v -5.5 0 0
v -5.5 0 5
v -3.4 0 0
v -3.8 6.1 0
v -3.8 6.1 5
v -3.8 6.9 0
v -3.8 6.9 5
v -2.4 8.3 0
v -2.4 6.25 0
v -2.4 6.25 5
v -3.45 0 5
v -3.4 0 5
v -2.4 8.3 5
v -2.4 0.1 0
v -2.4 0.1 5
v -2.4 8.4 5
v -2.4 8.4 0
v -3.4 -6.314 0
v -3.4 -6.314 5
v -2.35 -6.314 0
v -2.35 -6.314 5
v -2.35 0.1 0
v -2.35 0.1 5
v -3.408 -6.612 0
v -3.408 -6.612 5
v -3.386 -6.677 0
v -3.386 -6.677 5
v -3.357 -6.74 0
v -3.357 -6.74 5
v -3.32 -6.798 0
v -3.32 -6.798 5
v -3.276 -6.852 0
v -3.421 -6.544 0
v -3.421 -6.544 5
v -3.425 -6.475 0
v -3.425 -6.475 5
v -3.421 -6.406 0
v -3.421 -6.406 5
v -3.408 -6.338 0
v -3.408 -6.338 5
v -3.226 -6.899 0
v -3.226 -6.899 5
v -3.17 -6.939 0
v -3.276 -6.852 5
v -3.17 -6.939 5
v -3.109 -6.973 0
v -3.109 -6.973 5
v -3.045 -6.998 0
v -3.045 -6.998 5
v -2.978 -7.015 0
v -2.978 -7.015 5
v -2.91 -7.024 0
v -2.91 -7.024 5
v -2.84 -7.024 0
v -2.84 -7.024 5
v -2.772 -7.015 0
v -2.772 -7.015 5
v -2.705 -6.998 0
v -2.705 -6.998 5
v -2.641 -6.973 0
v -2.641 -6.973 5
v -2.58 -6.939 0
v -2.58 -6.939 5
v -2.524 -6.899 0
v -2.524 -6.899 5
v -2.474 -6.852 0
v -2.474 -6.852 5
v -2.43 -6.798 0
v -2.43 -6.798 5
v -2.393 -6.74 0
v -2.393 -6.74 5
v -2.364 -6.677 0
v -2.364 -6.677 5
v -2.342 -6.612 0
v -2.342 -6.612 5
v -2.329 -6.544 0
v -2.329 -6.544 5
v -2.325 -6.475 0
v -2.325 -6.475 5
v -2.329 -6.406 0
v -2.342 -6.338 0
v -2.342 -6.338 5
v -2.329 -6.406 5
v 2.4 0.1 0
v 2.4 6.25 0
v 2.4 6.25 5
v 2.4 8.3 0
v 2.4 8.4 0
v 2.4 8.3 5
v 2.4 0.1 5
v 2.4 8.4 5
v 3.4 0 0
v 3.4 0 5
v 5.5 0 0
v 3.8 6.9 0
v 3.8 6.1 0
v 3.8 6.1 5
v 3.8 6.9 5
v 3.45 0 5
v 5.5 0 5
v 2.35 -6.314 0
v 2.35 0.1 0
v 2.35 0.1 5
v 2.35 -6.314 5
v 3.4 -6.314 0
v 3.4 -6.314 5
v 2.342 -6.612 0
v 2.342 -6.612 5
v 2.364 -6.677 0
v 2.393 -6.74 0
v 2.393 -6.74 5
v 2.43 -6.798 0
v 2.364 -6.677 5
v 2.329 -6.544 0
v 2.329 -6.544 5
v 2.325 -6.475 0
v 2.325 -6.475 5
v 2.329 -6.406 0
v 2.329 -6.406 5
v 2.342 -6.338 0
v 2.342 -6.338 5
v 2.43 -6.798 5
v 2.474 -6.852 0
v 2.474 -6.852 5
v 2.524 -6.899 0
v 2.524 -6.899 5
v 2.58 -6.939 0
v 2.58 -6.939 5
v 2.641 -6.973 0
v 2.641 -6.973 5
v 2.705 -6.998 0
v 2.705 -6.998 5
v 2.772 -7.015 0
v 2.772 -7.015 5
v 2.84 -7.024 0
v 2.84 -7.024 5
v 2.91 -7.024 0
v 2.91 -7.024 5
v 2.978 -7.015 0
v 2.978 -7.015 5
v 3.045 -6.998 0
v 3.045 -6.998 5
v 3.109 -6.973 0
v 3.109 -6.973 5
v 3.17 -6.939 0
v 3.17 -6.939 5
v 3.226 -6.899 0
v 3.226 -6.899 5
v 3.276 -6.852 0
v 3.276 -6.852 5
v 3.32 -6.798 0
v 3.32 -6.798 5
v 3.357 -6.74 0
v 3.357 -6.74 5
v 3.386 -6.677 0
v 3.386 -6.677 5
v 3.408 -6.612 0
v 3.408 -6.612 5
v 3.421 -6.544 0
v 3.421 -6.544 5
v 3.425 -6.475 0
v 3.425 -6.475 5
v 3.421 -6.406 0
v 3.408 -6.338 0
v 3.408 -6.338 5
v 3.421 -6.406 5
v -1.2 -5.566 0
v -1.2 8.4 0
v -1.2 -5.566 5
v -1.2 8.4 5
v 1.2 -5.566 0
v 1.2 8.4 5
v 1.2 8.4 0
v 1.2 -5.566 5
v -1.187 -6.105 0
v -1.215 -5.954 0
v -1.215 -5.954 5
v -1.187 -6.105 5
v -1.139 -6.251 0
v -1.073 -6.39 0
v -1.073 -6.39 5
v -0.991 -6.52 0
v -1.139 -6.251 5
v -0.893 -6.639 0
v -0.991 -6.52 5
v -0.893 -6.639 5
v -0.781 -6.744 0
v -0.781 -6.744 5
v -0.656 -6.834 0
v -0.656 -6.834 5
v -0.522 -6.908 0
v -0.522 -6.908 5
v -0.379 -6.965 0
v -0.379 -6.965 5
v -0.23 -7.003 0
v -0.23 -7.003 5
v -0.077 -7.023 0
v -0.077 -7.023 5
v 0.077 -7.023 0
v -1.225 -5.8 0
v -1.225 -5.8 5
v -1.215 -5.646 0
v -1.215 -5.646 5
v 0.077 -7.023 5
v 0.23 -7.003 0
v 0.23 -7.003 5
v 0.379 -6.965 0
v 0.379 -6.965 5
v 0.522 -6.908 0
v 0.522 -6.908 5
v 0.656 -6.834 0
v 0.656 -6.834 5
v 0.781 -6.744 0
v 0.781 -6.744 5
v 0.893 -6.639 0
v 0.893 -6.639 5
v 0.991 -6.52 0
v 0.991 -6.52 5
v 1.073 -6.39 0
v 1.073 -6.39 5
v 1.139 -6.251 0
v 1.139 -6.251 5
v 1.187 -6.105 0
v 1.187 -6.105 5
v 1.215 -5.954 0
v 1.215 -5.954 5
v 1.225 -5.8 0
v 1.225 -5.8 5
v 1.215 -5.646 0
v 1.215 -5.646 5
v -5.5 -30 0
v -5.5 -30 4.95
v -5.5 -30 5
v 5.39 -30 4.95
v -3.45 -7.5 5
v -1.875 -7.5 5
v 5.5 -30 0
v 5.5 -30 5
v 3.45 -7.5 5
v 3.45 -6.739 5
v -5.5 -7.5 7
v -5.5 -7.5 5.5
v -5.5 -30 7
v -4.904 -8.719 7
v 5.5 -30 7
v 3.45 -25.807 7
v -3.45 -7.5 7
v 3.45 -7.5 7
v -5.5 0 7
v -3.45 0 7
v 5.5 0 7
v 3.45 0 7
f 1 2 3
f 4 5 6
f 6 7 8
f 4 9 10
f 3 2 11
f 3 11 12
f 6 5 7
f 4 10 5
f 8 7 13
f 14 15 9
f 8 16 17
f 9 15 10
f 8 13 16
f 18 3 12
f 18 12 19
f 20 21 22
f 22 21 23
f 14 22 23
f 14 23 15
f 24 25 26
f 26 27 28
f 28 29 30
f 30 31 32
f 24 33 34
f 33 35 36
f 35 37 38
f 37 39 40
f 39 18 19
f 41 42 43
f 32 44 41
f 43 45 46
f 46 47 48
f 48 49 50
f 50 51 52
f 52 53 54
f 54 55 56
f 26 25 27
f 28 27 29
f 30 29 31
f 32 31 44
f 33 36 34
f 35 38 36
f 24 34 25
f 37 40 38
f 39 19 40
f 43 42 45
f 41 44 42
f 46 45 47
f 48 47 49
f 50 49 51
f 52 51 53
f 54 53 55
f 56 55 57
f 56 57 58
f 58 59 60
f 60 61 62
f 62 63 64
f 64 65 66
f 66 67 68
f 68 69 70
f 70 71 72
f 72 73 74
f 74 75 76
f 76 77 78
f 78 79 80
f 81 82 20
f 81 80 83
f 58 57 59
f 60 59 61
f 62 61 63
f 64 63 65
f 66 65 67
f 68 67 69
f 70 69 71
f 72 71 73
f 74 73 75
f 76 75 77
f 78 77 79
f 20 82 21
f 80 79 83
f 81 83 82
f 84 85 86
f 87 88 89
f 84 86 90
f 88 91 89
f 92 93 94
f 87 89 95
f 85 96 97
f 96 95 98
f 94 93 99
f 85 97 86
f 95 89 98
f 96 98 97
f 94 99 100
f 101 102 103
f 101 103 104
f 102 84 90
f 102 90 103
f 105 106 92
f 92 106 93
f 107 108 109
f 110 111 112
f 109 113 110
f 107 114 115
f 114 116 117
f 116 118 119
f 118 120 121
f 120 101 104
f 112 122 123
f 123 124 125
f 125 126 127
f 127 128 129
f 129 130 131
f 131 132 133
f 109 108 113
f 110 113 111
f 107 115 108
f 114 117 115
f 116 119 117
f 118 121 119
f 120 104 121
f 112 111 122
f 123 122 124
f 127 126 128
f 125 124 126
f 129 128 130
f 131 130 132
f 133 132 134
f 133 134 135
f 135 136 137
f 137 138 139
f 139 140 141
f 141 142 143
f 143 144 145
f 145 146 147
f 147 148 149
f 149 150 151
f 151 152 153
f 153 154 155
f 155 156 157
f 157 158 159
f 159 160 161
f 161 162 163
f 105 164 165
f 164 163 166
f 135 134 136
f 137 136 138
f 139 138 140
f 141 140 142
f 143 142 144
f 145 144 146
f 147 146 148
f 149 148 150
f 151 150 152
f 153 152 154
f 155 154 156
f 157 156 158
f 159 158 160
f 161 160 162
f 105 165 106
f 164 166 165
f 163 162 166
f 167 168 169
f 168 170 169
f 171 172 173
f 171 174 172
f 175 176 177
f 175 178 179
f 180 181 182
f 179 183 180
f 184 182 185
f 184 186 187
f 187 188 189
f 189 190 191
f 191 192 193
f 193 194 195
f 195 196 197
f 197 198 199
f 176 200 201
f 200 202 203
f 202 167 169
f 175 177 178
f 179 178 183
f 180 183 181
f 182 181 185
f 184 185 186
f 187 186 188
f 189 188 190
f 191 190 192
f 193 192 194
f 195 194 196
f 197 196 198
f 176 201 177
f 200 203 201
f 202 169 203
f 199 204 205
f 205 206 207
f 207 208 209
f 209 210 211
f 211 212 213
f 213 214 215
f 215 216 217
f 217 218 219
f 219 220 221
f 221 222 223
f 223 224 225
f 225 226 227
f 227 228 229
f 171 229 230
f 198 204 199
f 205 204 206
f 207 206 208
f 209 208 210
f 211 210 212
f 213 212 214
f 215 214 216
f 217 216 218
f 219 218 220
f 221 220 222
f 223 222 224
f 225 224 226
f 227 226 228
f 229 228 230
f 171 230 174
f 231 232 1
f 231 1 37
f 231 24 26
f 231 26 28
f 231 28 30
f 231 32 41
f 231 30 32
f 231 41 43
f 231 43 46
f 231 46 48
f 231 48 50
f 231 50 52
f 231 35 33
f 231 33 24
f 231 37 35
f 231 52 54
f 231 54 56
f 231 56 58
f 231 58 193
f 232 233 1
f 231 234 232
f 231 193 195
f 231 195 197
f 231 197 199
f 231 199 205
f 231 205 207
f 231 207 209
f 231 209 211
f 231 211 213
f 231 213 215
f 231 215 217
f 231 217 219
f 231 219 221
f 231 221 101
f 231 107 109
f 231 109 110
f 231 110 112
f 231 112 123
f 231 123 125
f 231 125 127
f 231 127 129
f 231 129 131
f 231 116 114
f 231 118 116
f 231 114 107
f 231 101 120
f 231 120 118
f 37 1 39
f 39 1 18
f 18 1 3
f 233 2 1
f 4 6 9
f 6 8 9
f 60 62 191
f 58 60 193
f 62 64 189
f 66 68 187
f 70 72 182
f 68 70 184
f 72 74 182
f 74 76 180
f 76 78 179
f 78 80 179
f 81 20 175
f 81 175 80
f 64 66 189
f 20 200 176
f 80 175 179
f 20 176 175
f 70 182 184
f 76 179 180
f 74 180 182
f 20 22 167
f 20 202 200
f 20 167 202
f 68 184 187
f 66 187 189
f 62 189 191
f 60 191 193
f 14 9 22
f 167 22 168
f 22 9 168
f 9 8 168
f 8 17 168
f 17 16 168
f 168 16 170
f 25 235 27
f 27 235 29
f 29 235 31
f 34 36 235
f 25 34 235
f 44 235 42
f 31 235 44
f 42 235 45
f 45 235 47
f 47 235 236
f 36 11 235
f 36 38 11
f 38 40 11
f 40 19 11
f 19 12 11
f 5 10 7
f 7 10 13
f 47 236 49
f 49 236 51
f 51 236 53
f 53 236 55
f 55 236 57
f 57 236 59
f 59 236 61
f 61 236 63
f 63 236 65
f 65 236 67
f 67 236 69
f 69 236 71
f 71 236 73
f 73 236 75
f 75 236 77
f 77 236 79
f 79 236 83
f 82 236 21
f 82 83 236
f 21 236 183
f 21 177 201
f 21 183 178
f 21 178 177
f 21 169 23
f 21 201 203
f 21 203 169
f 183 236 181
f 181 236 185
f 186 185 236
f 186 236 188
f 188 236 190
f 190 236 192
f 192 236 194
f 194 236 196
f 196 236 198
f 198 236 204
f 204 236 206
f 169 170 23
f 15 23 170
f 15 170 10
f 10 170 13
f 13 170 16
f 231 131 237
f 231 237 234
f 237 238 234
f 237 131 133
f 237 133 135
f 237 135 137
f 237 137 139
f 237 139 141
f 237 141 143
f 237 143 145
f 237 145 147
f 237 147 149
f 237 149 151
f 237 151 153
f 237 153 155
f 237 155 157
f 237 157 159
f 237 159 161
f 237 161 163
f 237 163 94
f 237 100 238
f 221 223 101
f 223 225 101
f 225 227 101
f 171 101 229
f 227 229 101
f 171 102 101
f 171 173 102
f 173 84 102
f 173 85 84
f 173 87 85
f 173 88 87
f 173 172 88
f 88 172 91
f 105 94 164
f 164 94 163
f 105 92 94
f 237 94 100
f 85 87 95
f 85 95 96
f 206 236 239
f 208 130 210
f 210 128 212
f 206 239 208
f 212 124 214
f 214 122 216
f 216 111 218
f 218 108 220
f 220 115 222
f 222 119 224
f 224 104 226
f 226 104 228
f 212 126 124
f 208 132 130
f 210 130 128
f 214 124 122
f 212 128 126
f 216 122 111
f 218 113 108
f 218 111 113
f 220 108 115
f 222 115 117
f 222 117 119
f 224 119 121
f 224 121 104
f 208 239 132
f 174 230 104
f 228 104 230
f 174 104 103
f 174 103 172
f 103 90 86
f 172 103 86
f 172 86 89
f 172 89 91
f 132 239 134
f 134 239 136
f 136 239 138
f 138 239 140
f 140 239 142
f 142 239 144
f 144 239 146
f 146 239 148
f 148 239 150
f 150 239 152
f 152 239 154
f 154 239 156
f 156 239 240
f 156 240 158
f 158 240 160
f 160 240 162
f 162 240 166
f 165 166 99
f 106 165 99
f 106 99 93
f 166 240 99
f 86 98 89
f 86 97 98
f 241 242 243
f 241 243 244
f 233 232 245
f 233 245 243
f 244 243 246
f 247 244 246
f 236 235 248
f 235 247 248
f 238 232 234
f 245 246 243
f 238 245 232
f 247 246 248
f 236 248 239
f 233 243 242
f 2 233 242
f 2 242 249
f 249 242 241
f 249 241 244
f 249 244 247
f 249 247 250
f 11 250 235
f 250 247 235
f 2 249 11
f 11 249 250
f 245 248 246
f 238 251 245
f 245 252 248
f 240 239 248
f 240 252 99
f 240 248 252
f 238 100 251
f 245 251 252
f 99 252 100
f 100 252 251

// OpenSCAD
$fn = 50;

difference() {
	union() {
		translate(v = [0, 0, 0]) {
			rotate(a = [0, 0, 0]) {
				difference() {
					union() {
						translate(v = [0, 0, 0]) {
							rotate(a = [0, 0, 0]) {
								difference() {
									union() {
										translate(v = [0, 0, 0]) {
											rotate(a = [0, 0, 0]) {
												difference() {
													union() {
														translate(v = [-5.5, -30.0, 0]) {
															cube(size = [11.0, 38.4, 5.0]);
														}
													}
													union() {
														translate(v = [0, 0, -0.1]) {
															linear_extrude(height = 5.2) {
																polygon(points = [[-2.4, 0], [-2.4, 6.25], [-3.8, 6.1], [-3.8, 6.8999999999999995], [-2.4, 8.299999999999999], [-2.4, 9.399999999999999], [-5.7, 9.399999999999999], [-5.7, 0]]);
															}
														}
														translate(v = [0, 0, -0.1]) {
															linear_extrude(height = 5.2) {
																polygon(points = [[-2.35, -6.5], [-2.35, -6.3375], [-2.35, -6.175], [-2.35, -6.0125], [-2.35, -5.85], [-2.35, -5.6875], [-2.35, -5.525], [-2.35, -5.3625], [-2.35, -5.2], [-2.35, -5.0375], [-2.35, -4.875], [-2.35, -4.7125], [-2.35, -4.55], [-2.35, -4.3875], [-2.35, -4.225], [-2.35, -4.0625], [-2.35, -3.9], [-2.35, -3.7375], [-2.35, -3.575], [-2.35, -3.4125], [-2.35, -3.25], [-2.35, -3.0875], [-2.35, -2.925], [-2.35, -2.7625], [-2.35, -2.6], [-2.35, -2.4375], [-2.35, -2.2750000000000004], [-2.35, -2.1125], [-2.35, -1.9500000000000002], [-2.35, -1.7874999999999996], [-2.35, -1.625], [-2.35, -1.4625000000000004], [-2.35, -1.2999999999999998], [-2.35, -1.1375000000000002], [-2.35, -0.9749999999999996], [-2.35, -0.8125], [-2.35, -0.6500000000000004], [-2.35, -0.4874999999999998], [-2.35, -0.3250000000000002], [-2.35, -0.16249999999999964], [-2.35, 0.0], [-2.35, 0.1], [-3.4, 0.1], [-3.4, -6.5]]);
															}
														}
														translate(v = [-2.875, -6.475, -0.1]) {
															cylinder(h = 5.2, r = 0.55);
														}
														translate(v = [0, 0, -0.1]) {
															linear_extrude(height = 5.2) {
																polygon(points = [[2.4, 0], [2.4, 6.25], [3.8, 6.1], [3.8, 6.8999999999999995], [2.4, 8.299999999999999], [2.4, 9.399999999999999], [5.7, 9.399999999999999], [5.7, 0]]);
															}
														}
														translate(v = [0, 0, -0.1]) {
															linear_extrude(height = 5.2) {
																polygon(points = [[2.35, -6.5], [2.35, -6.3375], [2.35, -6.175], [2.35, -6.0125], [2.35, -5.85], [2.35, -5.6875], [2.35, -5.525], [2.35, -5.3625], [2.35, -5.2], [2.35, -5.0375], [2.35, -4.875], [2.35, -4.7125], [2.35, -4.55], [2.35, -4.3875], [2.35, -4.225], [2.35, -4.0625], [2.35, -3.9], [2.35, -3.7375], [2.35, -3.575], [2.35, -3.4125], [2.35, -3.25], [2.35, -3.0875], [2.35, -2.925], [2.35, -2.7625], [2.35, -2.6], [2.35, -2.4375], [2.35, -2.2750000000000004], [2.35, -2.1125], [2.35, -1.9500000000000002], [2.35, -1.7874999999999996], [2.35, -1.625], [2.35, -1.4625000000000004], [2.35, -1.2999999999999998], [2.35, -1.1375000000000002], [2.35, -0.9749999999999996], [2.35, -0.8125], [2.35, -0.6500000000000004], [2.35, -0.4874999999999998], [2.35, -0.3250000000000002], [2.35, -0.16249999999999964], [2.35, 0.0], [2.35, 0.1], [3.4, 0.1], [3.4, -6.5]]);
															}
														}
														translate(v = [2.875, -6.475, -0.1]) {
															cylinder(h = 5.2, r = 0.55);
														}
														translate(v = [0, 0, -0.1]) {
															linear_extrude(height = 5.2) {
																polygon(points = [[-1.2, -5.85], [-1.2, -5.632142857142857], [-1.2, -5.414285714285714], [-1.2, -5.196428571428571], [-1.2, -4.978571428571428], [-1.2, -4.760714285714285], [-1.2, -4.542857142857143], [-1.2, -4.324999999999999], [-1.2, -4.107142857142857], [-1.2, -3.8892857142857142], [-1.2, -3.6714285714285713], [-1.2, -3.4535714285714283], [-1.2, -3.2357142857142853], [-1.2, -3.0178571428571423], [-1.2, -2.8], [-1.2, -2.582142857142857], [-1.2, -2.364285714285714], [-1.2, -2.146428571428571], [-1.2, -1.9285714285714284], [-1.2, -1.7107142857142854], [-1.2, -1.4928571428571429], [-1.2, -1.2749999999999995], [-1.2, -1.057142857142857], [-1.2, -0.8392857142857135], [-1.2, -0.621428571428571], [-1.2, -0.40357142857142847], [-1.2, -0.18571428571428505], [-1.2, 0], [-1.2, 0.03214285714285747], [-1.2, 0.25], [-1.2, 0.4678571428571434], [-1.2, 0.6857142857142859], [-1.2, 0.9035714285714294], [-1.2, 1.1214285714285719], [-1.2, 1.3392857142857144], [-1.2, 1.5571428571428578], [-1.2, 1.7750000000000004], [-1.2, 1.9928571428571429], [-1.2, 2.2107142857142854], [-1.2, 2.428571428571429], [-1.2, 2.6464285714285722], [-1.2, 2.864285714285714], [-1.2, 3.0821428571428573], [-1.2, 3.3000000000000007], [-1.2, 3.5178571428571423], [-1.2, 3.7357142857142858], [-1.2, 3.953571428571429], [-1.2, 4.171428571428573], [-1.2, 4.389285714285714], [-1.2, 4.607142857142858], [-1.2, 4.825000000000001], [-1.2, 5.042857142857143], [-1.2, 5.260714285714286], [-1.2, 5.4785714285714295], [-1.2, 5.696428571428571], [-1.2, 5.914285714285715], [-1.2, 6.1], [-1.2, 6.132142857142858], [-1.2, 6.25], [-1.2, 6.35], [-1.2, 6.567857142857143], [-1.2, 6.7857142857142865], [-1.2, 7.003571428571428], [-1.2, 7.2214285714285715], [-1.2, 7.439285714285715], [-1.2, 7.657142857142858], [-1.2, 7.875], [-1.2, 8.092857142857143], [-1.2, 8.310714285714287], [-1.2, 8.528571428571428], [-1.2, 8.746428571428572], [-1.2, 8.964285714285715], [-1.2, 9.182142857142857], [-1.2, 9.4], [1.2, 9.4], [1.2, 9.182142857142857], [1.2, 8.964285714285715], [1.2, 8.746428571428572], [1.2, 8.528571428571428], [1.2, 8.310714285714287], [1.2, 8.092857142857143], [1.2, 7.875], [1.2, 7.657142857142858], [1.2, 7.439285714285715], [1.2, 7.2214285714285715], [1.2, 7.003571428571428], [1.2, 6.7857142857142865], [1.2, 6.567857142857143], [1.2, 6.35], [1.2, 6.25], [1.2, 6.132142857142858], [1.2, 6.1], [1.2, 5.914285714285715], [1.2, 5.696428571428571], [1.2, 5.4785714285714295], [1.2, 5.260714285714286], [1.2, 5.042857142857143], [1.2, 4.825000000000001], [1.2, 4.607142857142858], [1.2, 4.389285714285714], [1.2, 4.171428571428573], [1.2, 3.953571428571429], [1.2, 3.7357142857142858], [1.2, 3.5178571428571423], [1.2, 3.3000000000000007], [1.2, 3.0821428571428573], [1.2, 2.864285714285714], [1.2, 2.6464285714285722], [1.2, 2.428571428571429], [1.2, 2.2107142857142854], [1.2, 1.9928571428571429], [1.2, 1.7750000000000004], [1.2, 1.5571428571428578], [1.2, 1.3392857142857144], [1.2, 1.1214285714285719], [1.2, 0.9035714285714294], [1.2, 0.6857142857142859], [1.2, 0.4678571428571434], [1.2, 0.25], [1.2, 0.03214285714285747], [1.2, 0], [1.2, -0.18571428571428505], [1.2, -0.40357142857142847], [1.2, -0.621428571428571], [1.2, -0.8392857142857135], [1.2, -1.057142857142857], [1.2, -1.2749999999999995], [1.2, -1.4928571428571429], [1.2, -1.7107142857142854], [1.2, -1.9285714285714284], [1.2, -2.146428571428571], [1.2, -2.364285714285714], [1.2, -2.582142857142857], [1.2, -2.8], [1.2, -3.0178571428571423], [1.2, -3.2357142857142853], [1.2, -3.4535714285714283], [1.2, -3.6714285714285713], [1.2, -3.8892857142857142], [1.2, -4.107142857142857], [1.2, -4.324999999999999], [1.2, -4.542857142857143], [1.2, -4.760714285714285], [1.2, -4.978571428571428], [1.2, -5.196428571428571], [1.2, -5.414285714285714], [1.2, -5.632142857142857], [1.2, -5.85]]);
															}
														}
														translate(v = [0, -5.8, -0.1]) {
															cylinder(h = 5.2, r = 1.2249999999999999);
														}
													}
												}
											}
										}
										translate(v = [0, 0, 0]) {
											rotate(a = [0, 0, 0]) {
												difference() {
													union() {
														translate(v = [-5.5, -30.0, 4.95]) {
															cube(size = [11.0, 22.5, 2.05]);
														}
													}
													union();
												}
											}
										}
										translate(v = [-5.5, -30.0, 4.95]) {
											cube(size = [2.0500000000000003, 30.0, 2.05]);
										}
										translate(v = [3.4499999999999997, -30.0, 4.95]) {
											cube(size = [2.0500000000000003, 30.0, 2.05]);
										}
									}
									union();
								}
							}
						}
					}
					union();
				}
			}
		}
	}
	union();
}
